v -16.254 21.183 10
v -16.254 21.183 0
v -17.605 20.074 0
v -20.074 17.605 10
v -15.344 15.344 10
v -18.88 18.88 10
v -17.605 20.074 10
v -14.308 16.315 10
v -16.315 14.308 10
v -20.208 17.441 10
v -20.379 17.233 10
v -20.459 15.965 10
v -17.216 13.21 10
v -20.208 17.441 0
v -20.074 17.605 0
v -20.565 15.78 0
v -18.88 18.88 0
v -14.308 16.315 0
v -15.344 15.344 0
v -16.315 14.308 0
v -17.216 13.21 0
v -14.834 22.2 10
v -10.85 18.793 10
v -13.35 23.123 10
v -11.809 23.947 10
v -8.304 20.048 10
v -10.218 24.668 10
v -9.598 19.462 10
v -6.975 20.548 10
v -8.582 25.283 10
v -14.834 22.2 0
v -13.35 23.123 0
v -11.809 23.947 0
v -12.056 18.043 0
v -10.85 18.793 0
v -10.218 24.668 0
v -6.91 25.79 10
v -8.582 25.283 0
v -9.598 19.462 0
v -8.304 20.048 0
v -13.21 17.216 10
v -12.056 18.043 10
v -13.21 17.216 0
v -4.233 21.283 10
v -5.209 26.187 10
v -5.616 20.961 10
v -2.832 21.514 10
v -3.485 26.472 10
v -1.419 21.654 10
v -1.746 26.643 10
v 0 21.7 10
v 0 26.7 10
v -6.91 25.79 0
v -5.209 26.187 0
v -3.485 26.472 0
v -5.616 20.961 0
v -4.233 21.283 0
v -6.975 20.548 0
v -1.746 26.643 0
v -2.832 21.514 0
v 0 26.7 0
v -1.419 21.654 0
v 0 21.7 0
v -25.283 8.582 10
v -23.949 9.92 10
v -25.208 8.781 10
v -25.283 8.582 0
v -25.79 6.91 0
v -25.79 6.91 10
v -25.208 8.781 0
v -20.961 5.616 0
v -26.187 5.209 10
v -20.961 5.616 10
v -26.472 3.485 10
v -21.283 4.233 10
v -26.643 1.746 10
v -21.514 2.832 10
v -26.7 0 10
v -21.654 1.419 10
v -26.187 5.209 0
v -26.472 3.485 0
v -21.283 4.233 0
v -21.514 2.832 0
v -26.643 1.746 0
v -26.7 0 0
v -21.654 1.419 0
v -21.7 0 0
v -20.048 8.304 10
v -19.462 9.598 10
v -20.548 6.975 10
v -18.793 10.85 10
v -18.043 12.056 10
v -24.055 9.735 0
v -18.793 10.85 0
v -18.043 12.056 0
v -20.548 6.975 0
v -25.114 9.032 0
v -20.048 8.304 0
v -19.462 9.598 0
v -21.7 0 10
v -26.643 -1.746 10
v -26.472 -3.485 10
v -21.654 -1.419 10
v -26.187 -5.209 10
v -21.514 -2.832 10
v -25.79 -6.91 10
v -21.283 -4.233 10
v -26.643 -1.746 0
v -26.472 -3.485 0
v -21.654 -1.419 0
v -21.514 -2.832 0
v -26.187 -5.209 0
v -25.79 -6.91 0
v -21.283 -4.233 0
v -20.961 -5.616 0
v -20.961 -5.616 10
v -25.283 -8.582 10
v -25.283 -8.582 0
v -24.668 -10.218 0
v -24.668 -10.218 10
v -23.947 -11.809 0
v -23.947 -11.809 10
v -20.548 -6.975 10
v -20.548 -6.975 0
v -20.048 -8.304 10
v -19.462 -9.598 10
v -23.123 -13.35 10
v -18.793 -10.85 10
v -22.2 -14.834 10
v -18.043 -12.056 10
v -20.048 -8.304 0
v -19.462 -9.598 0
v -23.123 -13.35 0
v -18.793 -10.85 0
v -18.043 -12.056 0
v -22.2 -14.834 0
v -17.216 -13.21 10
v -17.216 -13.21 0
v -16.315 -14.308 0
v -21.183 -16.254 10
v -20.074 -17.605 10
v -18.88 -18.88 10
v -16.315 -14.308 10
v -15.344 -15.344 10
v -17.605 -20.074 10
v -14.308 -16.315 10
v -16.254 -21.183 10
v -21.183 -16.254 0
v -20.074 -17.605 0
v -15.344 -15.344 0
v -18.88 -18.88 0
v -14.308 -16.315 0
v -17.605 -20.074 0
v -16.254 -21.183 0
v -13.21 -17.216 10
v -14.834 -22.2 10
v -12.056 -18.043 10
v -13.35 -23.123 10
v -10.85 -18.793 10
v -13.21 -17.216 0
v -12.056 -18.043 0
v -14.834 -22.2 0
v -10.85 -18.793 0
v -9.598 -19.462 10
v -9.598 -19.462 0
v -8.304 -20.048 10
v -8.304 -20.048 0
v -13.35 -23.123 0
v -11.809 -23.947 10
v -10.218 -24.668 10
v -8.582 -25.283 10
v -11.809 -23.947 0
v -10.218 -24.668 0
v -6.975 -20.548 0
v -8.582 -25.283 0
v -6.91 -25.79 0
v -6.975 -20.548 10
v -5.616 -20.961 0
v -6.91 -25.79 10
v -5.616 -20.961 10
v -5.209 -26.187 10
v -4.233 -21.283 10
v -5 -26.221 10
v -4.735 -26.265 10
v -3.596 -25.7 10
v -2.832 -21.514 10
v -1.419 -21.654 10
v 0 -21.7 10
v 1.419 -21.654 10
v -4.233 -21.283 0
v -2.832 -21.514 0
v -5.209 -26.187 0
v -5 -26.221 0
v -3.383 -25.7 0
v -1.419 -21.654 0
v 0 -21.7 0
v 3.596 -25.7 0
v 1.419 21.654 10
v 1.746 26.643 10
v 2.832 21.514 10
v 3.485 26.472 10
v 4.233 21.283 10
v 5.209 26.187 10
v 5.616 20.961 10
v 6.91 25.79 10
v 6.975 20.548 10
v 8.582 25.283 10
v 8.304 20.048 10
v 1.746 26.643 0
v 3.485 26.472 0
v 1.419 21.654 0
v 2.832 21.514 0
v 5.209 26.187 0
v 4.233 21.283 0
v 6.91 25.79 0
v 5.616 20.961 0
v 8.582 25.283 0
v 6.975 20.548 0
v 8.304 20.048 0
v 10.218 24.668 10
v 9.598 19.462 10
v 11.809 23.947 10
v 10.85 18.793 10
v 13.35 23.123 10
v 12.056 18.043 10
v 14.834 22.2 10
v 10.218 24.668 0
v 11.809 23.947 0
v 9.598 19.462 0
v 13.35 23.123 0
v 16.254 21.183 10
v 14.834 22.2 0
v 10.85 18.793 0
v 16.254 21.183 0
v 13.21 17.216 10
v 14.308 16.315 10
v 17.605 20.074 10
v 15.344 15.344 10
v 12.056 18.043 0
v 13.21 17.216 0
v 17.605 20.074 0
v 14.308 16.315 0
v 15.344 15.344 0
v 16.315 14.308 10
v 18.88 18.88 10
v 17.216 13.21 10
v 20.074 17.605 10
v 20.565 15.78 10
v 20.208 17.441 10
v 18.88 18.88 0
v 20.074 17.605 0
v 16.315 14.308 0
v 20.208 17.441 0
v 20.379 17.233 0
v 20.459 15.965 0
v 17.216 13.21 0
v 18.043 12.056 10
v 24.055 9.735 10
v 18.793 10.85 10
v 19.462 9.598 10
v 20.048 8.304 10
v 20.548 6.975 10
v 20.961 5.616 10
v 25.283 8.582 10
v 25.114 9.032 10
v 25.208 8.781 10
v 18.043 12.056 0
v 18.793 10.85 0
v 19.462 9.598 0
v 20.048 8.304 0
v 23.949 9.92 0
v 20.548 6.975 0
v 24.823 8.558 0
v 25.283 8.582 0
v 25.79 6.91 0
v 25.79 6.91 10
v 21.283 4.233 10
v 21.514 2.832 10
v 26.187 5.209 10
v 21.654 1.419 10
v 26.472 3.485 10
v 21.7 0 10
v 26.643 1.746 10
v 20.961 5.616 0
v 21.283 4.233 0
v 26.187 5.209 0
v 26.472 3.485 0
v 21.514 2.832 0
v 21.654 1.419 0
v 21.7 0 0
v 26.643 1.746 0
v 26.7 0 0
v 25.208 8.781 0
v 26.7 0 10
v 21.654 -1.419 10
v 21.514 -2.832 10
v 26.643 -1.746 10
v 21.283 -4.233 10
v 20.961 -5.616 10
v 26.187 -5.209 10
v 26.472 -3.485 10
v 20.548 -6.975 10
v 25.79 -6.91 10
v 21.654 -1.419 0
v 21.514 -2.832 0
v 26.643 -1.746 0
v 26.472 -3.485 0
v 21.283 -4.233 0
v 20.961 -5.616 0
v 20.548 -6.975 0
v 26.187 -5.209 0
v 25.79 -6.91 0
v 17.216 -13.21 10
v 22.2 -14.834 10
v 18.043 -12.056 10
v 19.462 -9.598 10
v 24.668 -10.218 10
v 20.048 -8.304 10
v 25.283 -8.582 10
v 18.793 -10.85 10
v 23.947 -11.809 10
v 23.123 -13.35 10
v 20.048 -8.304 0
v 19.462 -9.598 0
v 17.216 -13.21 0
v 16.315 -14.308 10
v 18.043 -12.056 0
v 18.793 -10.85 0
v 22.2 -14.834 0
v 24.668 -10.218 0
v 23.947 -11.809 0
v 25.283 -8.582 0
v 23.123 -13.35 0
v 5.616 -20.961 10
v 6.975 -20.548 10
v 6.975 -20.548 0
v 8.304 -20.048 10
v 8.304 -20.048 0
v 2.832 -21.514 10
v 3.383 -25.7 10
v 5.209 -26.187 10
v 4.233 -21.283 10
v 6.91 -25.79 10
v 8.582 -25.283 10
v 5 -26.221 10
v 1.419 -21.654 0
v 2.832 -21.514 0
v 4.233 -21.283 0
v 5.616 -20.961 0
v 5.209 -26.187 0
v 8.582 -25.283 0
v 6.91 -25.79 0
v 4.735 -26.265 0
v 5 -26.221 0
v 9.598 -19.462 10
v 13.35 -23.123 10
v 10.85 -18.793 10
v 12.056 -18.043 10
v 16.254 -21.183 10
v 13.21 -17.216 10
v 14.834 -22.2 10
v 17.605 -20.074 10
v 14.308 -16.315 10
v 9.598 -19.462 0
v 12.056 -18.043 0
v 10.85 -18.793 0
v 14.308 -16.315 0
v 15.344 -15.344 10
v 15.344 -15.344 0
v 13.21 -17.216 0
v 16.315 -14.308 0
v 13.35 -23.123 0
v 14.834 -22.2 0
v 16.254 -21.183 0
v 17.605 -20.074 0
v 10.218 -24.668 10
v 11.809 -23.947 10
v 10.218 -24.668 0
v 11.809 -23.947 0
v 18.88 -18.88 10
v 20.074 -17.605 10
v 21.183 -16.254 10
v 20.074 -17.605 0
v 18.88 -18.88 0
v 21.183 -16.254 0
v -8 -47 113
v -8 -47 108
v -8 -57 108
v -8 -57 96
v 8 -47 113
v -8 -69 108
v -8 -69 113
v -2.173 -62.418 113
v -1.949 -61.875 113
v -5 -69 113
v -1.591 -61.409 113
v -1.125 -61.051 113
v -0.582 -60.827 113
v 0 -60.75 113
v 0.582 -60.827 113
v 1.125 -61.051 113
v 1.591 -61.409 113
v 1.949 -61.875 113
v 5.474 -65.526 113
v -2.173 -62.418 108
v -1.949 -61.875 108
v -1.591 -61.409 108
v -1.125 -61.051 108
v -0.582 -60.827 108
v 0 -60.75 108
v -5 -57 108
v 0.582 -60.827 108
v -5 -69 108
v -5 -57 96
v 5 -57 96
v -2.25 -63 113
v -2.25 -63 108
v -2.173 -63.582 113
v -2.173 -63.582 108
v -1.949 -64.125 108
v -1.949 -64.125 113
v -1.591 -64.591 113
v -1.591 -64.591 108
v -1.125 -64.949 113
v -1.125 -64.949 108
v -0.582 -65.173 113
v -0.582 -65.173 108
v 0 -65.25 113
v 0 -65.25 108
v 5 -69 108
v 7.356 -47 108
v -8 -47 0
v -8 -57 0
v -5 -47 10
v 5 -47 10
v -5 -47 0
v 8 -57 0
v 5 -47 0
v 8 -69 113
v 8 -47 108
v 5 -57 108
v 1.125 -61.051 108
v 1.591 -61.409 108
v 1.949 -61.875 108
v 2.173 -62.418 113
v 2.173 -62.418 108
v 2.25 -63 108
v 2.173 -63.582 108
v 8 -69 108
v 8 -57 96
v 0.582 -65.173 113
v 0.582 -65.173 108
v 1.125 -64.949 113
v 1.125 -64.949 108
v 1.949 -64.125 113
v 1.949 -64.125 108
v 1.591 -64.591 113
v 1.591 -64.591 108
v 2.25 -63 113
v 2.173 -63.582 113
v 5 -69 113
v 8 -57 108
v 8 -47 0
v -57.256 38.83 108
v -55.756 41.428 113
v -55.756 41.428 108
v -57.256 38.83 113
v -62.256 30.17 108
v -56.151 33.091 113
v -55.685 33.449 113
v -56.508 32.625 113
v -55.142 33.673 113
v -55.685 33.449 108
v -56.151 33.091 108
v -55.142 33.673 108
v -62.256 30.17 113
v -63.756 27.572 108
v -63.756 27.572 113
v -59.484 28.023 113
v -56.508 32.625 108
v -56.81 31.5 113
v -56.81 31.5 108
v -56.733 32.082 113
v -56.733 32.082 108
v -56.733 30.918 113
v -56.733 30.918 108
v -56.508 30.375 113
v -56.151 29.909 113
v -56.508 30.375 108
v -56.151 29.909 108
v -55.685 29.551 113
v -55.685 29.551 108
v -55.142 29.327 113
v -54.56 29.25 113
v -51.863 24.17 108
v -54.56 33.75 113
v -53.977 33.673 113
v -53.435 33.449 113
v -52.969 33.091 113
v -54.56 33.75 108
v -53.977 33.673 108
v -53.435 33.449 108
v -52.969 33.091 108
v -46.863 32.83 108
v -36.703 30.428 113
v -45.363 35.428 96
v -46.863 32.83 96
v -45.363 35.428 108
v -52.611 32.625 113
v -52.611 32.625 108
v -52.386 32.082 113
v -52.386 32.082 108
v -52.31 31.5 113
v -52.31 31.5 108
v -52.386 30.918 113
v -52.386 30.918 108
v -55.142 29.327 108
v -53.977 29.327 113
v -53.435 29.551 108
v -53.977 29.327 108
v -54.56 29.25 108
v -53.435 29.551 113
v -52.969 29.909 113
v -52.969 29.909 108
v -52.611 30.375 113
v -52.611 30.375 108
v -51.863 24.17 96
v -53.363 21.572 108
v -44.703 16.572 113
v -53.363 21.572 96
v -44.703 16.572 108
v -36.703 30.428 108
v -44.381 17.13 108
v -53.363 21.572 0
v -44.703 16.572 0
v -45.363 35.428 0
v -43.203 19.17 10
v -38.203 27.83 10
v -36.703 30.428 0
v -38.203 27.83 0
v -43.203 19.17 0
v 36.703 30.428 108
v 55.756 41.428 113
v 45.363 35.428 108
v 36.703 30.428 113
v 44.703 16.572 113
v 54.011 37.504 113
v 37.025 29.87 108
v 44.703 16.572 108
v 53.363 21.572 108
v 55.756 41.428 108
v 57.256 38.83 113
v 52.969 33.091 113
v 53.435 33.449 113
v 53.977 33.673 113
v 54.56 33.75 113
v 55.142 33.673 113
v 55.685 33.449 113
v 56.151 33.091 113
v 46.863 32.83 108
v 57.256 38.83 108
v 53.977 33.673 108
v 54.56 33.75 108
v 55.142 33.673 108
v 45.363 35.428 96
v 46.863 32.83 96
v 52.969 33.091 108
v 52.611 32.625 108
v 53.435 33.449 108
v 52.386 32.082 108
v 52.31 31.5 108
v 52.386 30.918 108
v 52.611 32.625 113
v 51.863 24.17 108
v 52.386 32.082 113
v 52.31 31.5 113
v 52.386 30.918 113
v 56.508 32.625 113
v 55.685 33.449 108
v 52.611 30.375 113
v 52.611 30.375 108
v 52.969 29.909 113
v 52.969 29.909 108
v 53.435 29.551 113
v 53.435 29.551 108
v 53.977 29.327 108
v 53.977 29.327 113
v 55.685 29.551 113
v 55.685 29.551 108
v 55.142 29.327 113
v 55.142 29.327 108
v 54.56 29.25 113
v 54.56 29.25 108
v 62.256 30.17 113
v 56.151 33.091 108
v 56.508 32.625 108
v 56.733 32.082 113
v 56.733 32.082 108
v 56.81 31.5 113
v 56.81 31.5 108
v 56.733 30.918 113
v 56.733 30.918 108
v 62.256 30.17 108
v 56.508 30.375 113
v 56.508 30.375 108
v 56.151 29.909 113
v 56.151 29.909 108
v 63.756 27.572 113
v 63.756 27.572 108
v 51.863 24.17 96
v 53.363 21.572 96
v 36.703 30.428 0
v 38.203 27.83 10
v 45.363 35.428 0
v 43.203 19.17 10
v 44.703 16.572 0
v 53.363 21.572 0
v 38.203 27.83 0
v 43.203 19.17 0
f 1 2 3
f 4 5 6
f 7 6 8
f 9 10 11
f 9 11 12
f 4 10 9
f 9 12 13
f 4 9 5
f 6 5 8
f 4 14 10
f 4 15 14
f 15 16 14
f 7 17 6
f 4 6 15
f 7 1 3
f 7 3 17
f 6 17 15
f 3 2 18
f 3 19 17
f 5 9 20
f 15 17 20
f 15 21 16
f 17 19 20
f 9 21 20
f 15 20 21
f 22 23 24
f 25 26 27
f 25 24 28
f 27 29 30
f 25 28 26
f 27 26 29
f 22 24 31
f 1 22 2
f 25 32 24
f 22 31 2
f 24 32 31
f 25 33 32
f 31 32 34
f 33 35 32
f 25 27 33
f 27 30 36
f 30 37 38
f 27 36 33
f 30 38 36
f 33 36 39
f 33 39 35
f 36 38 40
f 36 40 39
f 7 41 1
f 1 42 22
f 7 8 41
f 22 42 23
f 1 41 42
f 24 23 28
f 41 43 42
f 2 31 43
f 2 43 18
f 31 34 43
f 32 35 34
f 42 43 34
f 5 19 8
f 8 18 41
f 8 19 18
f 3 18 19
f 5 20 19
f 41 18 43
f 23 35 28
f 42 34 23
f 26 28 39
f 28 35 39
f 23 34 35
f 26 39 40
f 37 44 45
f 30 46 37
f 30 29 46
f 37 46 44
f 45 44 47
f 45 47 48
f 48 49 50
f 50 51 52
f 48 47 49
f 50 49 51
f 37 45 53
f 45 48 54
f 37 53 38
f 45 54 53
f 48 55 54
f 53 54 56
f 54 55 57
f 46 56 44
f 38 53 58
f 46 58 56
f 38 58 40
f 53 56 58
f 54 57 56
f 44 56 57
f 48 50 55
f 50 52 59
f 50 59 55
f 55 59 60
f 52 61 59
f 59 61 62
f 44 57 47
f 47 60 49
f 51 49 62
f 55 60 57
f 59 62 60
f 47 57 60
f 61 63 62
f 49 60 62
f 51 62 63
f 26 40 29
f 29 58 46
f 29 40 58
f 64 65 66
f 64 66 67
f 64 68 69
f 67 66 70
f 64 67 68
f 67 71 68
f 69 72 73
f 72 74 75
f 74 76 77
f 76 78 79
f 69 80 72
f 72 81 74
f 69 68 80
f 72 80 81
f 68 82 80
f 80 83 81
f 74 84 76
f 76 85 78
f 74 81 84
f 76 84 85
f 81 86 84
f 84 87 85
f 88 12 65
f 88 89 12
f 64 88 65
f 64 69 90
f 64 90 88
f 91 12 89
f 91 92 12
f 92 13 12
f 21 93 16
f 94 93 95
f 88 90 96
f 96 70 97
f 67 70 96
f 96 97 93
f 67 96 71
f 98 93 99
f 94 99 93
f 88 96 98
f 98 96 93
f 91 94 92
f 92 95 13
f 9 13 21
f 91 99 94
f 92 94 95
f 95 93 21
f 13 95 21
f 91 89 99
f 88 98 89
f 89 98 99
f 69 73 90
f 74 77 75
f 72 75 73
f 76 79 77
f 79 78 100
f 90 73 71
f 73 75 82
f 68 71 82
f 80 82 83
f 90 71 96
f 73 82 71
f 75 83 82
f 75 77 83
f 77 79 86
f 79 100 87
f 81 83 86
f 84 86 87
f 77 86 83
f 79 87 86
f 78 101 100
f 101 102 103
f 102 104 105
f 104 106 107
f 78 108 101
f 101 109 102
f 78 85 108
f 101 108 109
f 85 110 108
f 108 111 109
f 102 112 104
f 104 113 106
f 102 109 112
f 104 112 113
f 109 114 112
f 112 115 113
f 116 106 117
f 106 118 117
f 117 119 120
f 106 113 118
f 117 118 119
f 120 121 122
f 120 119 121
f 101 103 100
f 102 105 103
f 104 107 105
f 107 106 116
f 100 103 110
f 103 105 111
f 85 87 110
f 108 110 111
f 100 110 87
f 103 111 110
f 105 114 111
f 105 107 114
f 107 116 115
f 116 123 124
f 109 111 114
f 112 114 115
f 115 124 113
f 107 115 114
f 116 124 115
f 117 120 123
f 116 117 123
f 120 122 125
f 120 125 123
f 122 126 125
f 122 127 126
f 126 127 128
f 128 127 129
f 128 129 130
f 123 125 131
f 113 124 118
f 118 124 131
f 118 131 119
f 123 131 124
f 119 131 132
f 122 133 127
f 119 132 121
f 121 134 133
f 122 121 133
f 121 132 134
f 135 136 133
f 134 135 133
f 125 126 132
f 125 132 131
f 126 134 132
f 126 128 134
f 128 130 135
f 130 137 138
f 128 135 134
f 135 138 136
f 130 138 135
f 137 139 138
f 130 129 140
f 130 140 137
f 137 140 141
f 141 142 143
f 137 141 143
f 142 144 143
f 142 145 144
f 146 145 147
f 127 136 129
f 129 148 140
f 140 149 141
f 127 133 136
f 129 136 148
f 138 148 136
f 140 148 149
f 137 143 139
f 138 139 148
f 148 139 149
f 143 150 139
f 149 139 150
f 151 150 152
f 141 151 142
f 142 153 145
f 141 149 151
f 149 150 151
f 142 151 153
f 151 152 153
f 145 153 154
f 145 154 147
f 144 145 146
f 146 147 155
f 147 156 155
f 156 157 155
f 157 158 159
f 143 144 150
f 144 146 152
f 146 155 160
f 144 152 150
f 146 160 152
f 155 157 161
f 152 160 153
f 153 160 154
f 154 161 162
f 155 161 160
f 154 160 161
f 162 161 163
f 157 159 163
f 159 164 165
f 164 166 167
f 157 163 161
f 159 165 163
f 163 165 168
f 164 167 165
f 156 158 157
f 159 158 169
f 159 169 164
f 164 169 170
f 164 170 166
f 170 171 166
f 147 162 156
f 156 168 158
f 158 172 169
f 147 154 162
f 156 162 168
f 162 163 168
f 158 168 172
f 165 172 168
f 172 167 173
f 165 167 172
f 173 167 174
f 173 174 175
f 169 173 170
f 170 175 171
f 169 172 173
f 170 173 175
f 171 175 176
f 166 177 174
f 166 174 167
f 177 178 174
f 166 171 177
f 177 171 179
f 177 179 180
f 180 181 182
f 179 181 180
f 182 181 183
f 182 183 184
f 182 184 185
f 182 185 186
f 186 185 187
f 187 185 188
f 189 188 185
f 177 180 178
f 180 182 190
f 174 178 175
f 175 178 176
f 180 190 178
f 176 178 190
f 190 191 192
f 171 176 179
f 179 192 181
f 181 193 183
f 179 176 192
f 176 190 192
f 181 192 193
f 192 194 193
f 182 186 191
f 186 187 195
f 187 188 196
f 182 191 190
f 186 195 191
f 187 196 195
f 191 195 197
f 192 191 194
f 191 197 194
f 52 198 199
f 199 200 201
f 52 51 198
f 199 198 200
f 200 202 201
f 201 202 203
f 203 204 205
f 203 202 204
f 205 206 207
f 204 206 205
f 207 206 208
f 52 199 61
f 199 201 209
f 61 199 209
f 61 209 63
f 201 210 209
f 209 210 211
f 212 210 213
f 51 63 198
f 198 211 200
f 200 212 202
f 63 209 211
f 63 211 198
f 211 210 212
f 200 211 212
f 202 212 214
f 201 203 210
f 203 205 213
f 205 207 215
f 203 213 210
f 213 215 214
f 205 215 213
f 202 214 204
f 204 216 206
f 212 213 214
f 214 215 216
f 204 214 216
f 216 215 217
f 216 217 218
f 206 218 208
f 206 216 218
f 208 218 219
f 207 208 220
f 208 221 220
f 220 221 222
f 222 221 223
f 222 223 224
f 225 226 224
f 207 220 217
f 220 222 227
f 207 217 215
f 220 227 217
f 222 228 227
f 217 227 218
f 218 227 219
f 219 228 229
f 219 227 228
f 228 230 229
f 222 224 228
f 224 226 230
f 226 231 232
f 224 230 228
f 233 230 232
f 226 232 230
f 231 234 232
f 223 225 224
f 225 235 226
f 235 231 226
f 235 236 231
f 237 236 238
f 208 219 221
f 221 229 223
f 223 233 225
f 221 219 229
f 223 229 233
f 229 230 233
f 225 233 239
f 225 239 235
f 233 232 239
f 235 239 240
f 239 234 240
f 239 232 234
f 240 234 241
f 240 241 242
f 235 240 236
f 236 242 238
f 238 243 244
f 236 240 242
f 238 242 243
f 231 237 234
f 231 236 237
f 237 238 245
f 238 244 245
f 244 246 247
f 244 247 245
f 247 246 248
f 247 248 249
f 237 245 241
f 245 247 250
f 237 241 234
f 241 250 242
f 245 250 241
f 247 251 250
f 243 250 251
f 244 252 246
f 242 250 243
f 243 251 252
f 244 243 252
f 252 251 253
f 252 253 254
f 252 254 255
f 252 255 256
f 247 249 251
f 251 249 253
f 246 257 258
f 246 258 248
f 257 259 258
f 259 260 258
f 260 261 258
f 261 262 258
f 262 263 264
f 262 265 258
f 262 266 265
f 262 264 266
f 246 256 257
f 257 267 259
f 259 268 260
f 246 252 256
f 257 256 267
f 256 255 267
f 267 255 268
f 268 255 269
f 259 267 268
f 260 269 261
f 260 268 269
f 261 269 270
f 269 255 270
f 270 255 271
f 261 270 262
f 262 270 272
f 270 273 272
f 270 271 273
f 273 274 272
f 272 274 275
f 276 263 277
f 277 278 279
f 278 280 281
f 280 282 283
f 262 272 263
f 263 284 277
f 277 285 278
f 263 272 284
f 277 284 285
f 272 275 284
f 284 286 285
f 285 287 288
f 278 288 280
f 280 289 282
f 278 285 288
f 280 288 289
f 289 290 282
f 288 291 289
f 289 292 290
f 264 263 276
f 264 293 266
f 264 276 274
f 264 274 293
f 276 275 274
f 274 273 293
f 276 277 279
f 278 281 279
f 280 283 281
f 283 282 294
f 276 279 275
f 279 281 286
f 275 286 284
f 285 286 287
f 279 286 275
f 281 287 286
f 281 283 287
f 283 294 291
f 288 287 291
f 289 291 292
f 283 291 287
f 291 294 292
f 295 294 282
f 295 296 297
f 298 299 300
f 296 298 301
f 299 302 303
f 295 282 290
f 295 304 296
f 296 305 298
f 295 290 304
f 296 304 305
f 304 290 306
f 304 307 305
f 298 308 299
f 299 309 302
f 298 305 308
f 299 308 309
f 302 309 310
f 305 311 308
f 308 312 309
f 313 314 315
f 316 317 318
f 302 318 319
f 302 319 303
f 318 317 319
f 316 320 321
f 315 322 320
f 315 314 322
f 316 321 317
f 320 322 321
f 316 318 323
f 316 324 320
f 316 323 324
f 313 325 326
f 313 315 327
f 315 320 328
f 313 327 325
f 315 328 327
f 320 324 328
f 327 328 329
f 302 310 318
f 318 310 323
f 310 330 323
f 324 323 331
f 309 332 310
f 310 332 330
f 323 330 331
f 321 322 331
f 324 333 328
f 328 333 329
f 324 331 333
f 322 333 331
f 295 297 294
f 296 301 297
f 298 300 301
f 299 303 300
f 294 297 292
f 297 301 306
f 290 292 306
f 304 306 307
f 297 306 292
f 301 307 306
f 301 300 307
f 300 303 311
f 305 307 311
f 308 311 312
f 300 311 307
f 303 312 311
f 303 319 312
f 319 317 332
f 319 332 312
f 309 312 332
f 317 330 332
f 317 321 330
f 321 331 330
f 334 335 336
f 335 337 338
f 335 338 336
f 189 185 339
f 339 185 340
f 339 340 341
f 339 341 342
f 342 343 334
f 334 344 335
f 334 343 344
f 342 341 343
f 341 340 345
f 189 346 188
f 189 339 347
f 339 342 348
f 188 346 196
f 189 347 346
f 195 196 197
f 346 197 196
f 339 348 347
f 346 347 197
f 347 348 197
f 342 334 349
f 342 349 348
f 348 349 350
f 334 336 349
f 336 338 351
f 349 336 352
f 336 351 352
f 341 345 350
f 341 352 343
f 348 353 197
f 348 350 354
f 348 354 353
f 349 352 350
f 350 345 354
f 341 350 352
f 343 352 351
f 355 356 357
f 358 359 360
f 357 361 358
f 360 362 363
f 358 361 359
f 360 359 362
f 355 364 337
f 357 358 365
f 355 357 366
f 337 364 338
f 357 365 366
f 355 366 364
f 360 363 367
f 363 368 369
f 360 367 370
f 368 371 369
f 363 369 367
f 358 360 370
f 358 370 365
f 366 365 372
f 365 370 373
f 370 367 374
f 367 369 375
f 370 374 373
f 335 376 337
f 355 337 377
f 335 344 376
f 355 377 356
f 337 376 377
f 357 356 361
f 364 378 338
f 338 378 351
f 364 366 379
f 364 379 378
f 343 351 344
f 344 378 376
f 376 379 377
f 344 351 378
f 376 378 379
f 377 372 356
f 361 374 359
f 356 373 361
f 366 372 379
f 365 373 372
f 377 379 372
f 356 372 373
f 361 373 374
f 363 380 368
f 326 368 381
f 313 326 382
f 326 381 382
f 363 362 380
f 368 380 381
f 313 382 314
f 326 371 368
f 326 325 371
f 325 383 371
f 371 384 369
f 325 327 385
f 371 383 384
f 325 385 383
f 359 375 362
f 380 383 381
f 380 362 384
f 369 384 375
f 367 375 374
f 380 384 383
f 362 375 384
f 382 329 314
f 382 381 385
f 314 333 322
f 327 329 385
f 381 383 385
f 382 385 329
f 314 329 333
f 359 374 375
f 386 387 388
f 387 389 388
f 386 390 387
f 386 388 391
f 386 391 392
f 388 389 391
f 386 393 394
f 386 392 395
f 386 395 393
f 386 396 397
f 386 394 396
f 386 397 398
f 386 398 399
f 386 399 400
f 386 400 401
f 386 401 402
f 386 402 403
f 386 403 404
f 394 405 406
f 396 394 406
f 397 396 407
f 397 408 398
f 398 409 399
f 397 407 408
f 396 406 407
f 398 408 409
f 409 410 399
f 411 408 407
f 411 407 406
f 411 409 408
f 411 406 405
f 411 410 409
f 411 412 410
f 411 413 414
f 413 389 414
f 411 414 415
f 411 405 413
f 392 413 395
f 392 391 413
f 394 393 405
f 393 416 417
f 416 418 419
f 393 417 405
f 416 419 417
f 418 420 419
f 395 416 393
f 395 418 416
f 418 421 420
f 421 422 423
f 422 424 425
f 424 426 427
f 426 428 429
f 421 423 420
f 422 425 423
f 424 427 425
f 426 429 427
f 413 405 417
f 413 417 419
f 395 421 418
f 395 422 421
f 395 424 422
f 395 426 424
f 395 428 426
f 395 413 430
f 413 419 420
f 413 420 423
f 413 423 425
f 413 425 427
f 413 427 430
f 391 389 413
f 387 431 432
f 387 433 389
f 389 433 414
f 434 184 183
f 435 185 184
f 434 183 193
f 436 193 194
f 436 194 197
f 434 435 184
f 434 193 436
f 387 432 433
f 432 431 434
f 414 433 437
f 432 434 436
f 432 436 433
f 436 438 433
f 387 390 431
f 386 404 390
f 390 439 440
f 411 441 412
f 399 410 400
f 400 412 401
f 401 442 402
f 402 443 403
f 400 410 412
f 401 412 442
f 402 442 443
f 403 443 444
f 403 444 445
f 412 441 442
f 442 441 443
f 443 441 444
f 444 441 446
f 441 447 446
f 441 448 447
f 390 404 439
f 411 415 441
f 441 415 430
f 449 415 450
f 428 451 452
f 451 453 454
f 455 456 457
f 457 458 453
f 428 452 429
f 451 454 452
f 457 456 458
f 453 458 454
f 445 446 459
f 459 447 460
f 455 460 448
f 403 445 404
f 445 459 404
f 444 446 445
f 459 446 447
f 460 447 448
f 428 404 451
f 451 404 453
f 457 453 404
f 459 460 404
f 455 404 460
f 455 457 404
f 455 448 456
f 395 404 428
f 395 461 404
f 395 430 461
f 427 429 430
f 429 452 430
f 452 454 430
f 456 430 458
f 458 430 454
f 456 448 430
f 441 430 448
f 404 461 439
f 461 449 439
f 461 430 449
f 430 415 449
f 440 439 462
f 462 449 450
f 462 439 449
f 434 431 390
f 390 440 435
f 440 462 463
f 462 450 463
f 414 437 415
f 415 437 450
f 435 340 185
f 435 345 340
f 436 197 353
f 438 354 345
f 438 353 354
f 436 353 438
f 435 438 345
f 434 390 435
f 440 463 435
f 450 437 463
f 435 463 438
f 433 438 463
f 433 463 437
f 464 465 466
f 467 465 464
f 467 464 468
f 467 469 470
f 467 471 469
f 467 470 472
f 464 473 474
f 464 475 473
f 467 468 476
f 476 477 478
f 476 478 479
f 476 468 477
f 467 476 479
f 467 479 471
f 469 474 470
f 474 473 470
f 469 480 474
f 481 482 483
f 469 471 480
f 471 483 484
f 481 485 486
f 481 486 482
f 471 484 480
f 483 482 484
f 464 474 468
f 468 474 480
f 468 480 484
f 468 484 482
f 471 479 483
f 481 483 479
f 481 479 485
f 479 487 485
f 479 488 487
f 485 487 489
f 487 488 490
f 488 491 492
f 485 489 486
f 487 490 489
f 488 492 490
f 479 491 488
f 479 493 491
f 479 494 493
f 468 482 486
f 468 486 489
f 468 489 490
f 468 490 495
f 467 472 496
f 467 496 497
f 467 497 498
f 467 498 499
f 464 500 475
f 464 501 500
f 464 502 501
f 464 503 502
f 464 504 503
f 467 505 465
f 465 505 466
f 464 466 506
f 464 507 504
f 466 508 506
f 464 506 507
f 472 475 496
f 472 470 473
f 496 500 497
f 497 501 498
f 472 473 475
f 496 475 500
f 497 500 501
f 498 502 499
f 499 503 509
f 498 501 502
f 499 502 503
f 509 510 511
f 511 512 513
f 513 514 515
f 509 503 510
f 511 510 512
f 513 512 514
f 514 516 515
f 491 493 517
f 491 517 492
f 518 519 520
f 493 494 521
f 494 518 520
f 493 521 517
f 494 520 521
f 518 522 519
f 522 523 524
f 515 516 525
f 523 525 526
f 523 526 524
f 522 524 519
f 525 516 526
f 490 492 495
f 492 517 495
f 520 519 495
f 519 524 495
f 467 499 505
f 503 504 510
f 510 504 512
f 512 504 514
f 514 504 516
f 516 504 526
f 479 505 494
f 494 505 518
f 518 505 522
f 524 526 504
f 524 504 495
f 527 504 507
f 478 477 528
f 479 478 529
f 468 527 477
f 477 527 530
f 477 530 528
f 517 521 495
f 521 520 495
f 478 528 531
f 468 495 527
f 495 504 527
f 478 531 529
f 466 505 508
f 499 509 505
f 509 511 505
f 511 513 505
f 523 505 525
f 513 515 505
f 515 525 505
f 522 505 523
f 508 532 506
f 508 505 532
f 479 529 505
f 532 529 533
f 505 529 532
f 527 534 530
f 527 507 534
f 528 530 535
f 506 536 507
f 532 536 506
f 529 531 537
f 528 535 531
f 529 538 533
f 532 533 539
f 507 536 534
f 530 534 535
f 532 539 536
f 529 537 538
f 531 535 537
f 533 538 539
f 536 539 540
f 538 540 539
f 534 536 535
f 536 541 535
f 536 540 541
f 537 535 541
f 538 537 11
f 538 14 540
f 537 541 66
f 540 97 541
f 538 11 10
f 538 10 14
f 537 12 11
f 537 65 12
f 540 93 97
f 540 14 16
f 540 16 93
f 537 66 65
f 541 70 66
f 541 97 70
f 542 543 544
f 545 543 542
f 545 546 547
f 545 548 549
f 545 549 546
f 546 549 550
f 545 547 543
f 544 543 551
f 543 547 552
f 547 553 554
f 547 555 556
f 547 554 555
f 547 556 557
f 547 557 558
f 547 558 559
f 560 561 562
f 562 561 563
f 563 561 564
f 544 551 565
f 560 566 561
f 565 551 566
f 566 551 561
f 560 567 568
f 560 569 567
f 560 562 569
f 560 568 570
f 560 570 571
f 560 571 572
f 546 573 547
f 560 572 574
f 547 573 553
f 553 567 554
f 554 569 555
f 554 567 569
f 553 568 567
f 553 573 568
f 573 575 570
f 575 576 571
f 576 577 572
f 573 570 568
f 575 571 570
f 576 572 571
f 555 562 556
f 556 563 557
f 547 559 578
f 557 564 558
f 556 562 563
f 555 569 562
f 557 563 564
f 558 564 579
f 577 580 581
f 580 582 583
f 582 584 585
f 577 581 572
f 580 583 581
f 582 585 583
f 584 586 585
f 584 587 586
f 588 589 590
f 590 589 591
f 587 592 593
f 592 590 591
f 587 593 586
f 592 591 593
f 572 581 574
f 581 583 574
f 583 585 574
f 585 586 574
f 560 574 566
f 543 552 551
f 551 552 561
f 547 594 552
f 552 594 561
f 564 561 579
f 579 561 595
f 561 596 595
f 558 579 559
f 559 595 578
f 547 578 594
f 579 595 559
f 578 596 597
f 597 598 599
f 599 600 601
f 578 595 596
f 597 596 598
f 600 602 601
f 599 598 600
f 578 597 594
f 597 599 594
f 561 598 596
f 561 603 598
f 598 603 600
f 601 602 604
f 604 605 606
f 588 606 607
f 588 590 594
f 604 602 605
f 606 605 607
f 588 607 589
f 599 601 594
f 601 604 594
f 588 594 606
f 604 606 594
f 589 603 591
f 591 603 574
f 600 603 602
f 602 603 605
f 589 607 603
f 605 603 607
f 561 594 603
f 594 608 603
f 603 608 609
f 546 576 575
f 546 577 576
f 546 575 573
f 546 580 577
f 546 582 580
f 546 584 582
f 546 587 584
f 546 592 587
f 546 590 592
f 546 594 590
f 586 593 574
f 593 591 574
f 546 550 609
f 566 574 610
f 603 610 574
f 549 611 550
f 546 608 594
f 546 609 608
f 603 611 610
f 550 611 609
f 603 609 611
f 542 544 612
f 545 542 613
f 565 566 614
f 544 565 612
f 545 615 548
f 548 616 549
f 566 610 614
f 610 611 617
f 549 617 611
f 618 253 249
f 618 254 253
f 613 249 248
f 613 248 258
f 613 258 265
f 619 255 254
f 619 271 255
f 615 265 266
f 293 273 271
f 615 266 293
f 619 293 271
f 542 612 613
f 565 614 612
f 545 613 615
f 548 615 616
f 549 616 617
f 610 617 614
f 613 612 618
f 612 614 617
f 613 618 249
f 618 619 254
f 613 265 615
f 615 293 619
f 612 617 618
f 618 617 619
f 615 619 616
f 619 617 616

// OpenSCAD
// Scoudouc 0 thrust stand: anti-tip CAGE (OpenSCAD), for the nozzle-UP cup.
// A ring with a few mm of free gap around the top of the cup, held by three posts that screw to the PLYWOOD
// BASE (not to the cup, not to the load cell). It only stops the cup tipping over if thrust is a few degrees
// off-axis. The gap means the ring never touches the cup in normal use, so it can never carry vertical load
// (if it did, it would take force away from the cell and the reading would be too low).
//
// Modelled in USE orientation (z = 0 is the plywood). Set print_flip = true (default) to export ring-down,
// which prints with no supports. PLA, 4 perimeters, 30% infill, 0.2 mm layers. Printer: LIBRARY (MK3), est. 4 h
// for the 29 mm cage (under the 6 h limit); the footprint is about 128 x 111 mm.
// HEAT: the ring is outside the cup wall, with a gap and the cardboard liner between it and the casing.
// Keep the ring below the cup rim (ring_drop) and replace it if it softens.

motor_d    = 29;    // must match the cup
holder_len = 85;    // must match the cup
clearance  = 0.4;   // same as cup.scad
liner_t    = 1.0;   // same as cup.scad
wall       = 3;     // same as cup.scad
plate_t    = 8;     // same as cup.scad
stand_h    = 25;    // MEASURE THIS: height of the cup's underside above the plywood (cell + riser + platform)
cage_gap   = 3;     // free gap between cup wall and ring, each side (mm). 2 to 4 is fine
ring_h     = 10;    // ring height
ring_w     = 5;     // ring radial thickness
ring_drop  = 5;     // ring top sits this far below the cup rim
post_R     = 52;    // post centre distance from the cup axis (clears the 56 mm flange corner at 39.6 mm)
post_r     = 10;    // post size, radial
post_t     = 16;    // post size, sideways
arm_w      = 10;    // arm joining ring to post
foot_ext   = 12;    // foot tab sticks out this far beyond the post
tab_t      = 5;     // foot tab thickness
screw_d    = 4.5;   // wood-screw hole
post_angle0 = 90;   // rotate the whole cage so no post sits on the load cell bar or its riser
print_flip = true;

bore  = motor_d + 2 * liner_t + clearance;
outer = bore + 2 * wall;
cup_top = stand_h + plate_t + holder_len;
ring_top = cup_top - ring_drop;
ring_z = ring_top - ring_h;
ring_id = outer + 2 * cage_gap;
ring_od = ring_id + 2 * ring_w;
$fn = 96;

module post() {
  px0 = post_R - post_r / 2;
  px1 = post_R + post_r / 2;
  difference() {
    union() {
      translate([px0, -post_t / 2, 0]) cube([post_r, post_t, ring_top]);                     // post
      translate([ring_od / 2 - 1, -arm_w / 2, ring_z]) cube([px0 - ring_od / 2 + 2, arm_w, ring_h]); // arm
      translate([px0, -post_t / 2, 0]) cube([post_r + foot_ext, post_t, tab_t]);             // foot tab
      for (s = [-1, 1])                                                                      // 45 degree ribs
        hull() {
          translate([px0, s * (post_t / 2 - 1.5) - 1.5, 0]) cube([post_r + foot_ext, 3, tab_t]);
          translate([px0, s * (post_t / 2 - 1.5) - 1.5, tab_t + foot_ext - 0.01]) cube([post_r, 3, 0.01]);
        }
    }
    translate([px1 + foot_ext / 2, 0, -1]) cylinder(d = screw_d, h = tab_t + foot_ext + 2, $fn = 24);
  }
}

module cage() {
  difference() {
    translate([0, 0, ring_z]) cylinder(d = ring_od, h = ring_h);
    translate([0, 0, ring_z - 1]) cylinder(d = ring_id, h = ring_h + 2);
  }
  for (k = [0 : 2]) rotate([0, 0, post_angle0 + 120 * k]) post();
}

if (print_flip) translate([0, 0, ring_top]) rotate([180, 0, 0]) cage();
else cage();
